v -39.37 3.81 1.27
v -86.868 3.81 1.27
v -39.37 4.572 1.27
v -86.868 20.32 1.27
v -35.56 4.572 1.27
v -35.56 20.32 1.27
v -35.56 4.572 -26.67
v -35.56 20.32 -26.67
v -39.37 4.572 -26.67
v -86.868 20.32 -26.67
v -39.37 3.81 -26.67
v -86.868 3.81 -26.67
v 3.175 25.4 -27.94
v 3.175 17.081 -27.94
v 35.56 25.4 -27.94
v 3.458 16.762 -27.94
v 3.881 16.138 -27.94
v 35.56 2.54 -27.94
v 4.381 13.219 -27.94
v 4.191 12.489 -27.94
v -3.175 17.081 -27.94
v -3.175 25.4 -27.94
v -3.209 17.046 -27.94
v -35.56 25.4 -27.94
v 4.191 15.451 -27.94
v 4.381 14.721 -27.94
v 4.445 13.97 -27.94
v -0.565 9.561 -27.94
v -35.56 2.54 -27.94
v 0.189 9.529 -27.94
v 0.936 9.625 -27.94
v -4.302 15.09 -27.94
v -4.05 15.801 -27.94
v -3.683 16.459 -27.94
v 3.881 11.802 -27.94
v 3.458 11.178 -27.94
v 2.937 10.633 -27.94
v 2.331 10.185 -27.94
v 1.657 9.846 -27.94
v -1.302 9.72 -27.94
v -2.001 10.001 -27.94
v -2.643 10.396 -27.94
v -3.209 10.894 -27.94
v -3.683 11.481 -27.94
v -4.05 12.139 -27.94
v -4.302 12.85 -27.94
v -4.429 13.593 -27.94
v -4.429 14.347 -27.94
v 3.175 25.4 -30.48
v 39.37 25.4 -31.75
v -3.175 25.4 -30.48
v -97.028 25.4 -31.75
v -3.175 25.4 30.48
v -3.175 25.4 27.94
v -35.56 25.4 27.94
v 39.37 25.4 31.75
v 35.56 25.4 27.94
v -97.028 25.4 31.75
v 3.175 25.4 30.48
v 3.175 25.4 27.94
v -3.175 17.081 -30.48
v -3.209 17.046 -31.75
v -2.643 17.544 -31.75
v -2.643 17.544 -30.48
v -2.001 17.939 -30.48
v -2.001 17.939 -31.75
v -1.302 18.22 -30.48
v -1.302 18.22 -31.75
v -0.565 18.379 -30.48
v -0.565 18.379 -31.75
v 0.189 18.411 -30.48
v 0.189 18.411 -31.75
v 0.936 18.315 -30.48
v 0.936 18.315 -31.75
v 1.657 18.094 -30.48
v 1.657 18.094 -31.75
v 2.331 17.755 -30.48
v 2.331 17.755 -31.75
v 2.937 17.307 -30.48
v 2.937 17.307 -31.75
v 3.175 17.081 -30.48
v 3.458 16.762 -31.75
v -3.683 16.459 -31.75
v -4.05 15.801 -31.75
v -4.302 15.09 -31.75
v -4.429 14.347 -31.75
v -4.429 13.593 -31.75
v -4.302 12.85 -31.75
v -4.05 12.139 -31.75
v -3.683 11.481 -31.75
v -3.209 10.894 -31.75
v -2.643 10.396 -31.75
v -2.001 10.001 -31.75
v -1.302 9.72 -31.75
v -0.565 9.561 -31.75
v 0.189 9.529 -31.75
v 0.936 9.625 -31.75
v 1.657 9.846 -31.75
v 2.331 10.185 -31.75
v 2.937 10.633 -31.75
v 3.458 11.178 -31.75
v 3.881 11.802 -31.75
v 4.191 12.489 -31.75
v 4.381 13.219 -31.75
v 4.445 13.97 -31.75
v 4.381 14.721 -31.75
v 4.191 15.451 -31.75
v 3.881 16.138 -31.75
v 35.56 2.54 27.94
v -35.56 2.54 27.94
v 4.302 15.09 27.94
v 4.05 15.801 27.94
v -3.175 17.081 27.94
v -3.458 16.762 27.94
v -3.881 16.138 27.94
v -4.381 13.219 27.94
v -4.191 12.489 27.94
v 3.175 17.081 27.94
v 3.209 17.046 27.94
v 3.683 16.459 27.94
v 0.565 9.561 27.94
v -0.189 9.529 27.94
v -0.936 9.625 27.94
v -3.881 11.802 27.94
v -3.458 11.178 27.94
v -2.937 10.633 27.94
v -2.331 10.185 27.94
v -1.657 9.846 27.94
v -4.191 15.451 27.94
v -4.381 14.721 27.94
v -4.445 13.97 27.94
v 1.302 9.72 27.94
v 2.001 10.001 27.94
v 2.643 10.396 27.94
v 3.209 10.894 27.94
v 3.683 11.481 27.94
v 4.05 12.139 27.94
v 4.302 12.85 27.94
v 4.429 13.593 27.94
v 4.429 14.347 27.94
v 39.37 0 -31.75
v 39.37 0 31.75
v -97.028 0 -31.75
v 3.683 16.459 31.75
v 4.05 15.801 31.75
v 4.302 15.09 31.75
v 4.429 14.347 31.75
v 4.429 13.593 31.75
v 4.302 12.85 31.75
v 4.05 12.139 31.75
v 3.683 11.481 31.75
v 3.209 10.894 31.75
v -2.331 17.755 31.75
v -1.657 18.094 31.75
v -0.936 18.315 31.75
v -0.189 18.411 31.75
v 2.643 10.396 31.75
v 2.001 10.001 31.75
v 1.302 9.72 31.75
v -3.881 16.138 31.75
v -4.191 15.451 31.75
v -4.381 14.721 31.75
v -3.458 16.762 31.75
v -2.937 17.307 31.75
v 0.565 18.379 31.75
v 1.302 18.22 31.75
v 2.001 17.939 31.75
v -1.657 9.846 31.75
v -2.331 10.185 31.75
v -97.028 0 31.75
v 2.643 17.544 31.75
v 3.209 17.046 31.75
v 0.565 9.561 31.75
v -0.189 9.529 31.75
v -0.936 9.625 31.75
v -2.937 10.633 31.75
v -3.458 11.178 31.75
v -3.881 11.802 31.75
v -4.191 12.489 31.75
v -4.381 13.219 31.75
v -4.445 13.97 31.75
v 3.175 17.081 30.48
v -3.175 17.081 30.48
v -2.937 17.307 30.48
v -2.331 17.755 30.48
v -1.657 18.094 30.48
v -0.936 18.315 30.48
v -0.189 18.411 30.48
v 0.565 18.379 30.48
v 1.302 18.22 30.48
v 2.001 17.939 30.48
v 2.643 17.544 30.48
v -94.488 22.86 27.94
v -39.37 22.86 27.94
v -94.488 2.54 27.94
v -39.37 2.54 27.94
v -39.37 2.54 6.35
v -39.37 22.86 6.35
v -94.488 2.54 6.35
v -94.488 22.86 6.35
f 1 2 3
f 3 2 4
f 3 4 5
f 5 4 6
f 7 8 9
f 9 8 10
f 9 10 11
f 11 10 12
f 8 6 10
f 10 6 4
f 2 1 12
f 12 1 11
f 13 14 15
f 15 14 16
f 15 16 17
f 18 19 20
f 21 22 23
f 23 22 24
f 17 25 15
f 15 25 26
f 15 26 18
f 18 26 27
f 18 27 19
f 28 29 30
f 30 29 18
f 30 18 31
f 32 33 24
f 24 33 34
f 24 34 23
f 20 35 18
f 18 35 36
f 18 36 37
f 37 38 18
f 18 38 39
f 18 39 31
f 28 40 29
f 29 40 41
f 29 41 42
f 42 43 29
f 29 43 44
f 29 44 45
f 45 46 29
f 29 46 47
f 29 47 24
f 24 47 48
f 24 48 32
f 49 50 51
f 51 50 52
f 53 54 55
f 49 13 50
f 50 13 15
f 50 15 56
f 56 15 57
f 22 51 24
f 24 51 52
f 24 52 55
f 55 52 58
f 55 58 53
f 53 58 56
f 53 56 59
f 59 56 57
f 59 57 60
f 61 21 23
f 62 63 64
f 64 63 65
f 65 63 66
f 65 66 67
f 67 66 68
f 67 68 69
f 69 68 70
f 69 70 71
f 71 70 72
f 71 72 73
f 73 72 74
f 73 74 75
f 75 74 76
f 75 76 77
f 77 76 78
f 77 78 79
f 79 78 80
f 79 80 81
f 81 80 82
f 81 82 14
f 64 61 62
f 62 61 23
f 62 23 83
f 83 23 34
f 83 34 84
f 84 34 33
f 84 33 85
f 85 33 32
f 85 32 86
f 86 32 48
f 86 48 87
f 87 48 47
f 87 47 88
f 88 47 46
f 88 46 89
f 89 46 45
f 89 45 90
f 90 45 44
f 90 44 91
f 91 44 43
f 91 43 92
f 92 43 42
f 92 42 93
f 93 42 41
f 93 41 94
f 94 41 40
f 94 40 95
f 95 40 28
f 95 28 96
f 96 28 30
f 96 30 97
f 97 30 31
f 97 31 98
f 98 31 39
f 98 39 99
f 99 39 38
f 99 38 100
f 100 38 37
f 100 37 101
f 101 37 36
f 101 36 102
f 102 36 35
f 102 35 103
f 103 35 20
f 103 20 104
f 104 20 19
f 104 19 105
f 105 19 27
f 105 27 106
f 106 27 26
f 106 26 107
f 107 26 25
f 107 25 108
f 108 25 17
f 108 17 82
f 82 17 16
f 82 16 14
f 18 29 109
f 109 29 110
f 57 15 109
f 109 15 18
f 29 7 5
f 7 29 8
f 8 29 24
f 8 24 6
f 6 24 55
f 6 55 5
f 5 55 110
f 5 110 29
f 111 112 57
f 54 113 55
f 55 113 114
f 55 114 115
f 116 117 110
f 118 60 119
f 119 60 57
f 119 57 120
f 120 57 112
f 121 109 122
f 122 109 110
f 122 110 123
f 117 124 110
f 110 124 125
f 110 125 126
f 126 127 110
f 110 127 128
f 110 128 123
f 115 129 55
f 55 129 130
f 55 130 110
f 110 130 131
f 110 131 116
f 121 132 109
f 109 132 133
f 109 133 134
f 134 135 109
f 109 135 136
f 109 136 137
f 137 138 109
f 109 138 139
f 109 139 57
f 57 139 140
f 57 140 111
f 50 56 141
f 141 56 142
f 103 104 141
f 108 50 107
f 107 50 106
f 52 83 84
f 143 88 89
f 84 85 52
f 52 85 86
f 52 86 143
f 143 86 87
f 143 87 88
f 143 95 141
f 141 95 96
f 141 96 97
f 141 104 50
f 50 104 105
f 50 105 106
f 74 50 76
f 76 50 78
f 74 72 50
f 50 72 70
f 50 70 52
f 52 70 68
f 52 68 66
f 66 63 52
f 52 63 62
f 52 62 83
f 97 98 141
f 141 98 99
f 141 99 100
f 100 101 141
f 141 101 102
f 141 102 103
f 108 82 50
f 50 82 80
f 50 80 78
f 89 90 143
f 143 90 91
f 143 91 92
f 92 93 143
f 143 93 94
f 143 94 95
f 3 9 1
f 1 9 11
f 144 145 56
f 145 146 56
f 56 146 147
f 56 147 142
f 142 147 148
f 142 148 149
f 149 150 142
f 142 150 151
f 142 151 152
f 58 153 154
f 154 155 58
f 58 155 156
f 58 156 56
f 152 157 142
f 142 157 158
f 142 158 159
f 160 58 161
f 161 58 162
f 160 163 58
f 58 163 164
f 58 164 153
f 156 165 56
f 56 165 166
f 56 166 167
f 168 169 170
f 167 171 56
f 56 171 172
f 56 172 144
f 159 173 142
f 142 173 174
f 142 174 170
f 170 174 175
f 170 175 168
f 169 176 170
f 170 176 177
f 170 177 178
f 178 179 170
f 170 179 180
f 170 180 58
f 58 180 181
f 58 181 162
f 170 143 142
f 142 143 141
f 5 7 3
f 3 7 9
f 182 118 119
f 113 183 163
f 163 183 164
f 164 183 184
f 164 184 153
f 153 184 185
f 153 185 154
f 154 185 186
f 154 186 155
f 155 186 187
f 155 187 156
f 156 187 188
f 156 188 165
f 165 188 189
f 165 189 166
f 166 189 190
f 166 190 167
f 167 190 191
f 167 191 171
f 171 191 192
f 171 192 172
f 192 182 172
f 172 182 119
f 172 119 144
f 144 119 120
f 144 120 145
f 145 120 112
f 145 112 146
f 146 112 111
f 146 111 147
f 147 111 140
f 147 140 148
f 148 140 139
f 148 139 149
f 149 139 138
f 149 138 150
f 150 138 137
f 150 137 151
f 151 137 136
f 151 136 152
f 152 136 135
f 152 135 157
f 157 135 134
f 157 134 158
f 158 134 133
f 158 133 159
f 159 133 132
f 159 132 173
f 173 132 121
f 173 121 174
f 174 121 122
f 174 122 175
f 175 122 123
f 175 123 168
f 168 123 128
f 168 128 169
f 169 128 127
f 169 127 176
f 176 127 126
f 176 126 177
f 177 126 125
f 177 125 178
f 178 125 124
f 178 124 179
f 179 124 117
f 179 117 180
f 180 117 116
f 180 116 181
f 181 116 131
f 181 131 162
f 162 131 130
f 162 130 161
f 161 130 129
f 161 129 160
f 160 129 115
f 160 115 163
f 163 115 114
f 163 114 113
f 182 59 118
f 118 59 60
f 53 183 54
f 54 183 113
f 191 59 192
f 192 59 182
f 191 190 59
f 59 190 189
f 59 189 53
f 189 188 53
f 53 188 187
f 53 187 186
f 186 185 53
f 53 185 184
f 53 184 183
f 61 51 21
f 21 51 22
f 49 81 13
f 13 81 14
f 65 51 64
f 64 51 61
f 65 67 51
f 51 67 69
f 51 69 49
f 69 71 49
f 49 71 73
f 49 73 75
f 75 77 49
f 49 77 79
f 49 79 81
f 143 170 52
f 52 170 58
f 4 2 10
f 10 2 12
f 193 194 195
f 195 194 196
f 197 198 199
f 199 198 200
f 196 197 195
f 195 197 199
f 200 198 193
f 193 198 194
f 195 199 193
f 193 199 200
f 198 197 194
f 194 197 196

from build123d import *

# Parameters (mm, degrees)
SKETCH1_W                = 71.12
SKETCH1_H                = 55.88
PCB_BASE_DEPTH           = 2.54
SKETCH1_4_W              = 78.74
SKETCH1_4_H              = 63.5
SKETCH1_4_W_2            = 71.12
SKETCH1_4_H_2            = 55.88
PCB_WALL_DEPTH           = 25.4
SKETCH2_W                = 27.94
SKETCH2_H                = 15.748
PCB_GAP_DEPTH            = 3.81
LID_HOLE_1_DEPTH         = 3.81
HOLE_SLIDE_1_DEPTH       = 2.54
LID_HOLE_2_START         = -3.81
LID_HOLE_2_DEPTH         = 3.81
HOLE_SLIDE_2_START       = -2.54
HOLE_SLIDE_2_DEPTH       = 2.54
SKETCH5_W                = 27.94
SKETCH5_H                = 5.08
BOSS_EXTRUDE3_DEPTH      = 48.768
BOSS_EXTRUDE4_DEPTH      = 8.89
BOSS_EXTRUDE4_DEPTH_BACK = 1.27
SKETCH7_W                = 38.1
SKETCH7_H                = 25.4
BOSS_EXTRUDE5_DEPTH      = 25.4
SKETCH9_W                = 57.658
SKETCH9_H                = 25.4
BOSS_EXTRUDE6_DEPTH      = 3.81


with BuildPart() as part:
    # Sketch1 → pcb-base (new body)
    with BuildSketch(Plane(origin=(0, 0, 0), x_dir=(1, 0, 0), z_dir=(0, 1, 0))):
        Rectangle(SKETCH1_W, SKETCH1_H)
    extrude(amount=PCB_BASE_DEPTH)

    # Sketch1<4> → pcb-wall (add)
    with BuildSketch(Plane(origin=(0, 0, 0), x_dir=(1, 0, 0), z_dir=(0, 1, 0))):
        Rectangle(SKETCH1_4_W, SKETCH1_4_H)
        Rectangle(SKETCH1_4_W_2, SKETCH1_4_H_2, mode=Mode.SUBTRACT)
    extrude(amount=PCB_WALL_DEPTH)

    # Sketch2 → pcb-gap (cut)
    with BuildSketch(Plane.ZY.offset(39.37)):
        with Locations((-12.7, 12.446)):
            Rectangle(SKETCH2_W, SKETCH2_H)
    extrude(amount=-PCB_GAP_DEPTH, mode=Mode.SUBTRACT)

    # Sketch4 → lid-hole-1 (cut)
    with BuildSketch(Plane(origin=(0, 0, 27.94), x_dir=(-1, 0, 0), z_dir=(0, 0, -1))):
        with BuildLine():
            ThreePointArc((3.175, 17.080851973), (0, 18.415), (-3.175, 17.080851973))
            Line((-3.175, 17.080851973), (-3.175, 13.97))
            Line((-3.175, 13.97), (3.175, 13.97))
            Line((3.175, 13.97), (3.175, 17.080851973))
        make_face()
        with BuildLine():
            Line((-3.175, 13.97), (-3.175, 17.080851973))
            ThreePointArc((-3.175, 17.080851973), (-1.680052083, 9.854729657), (4.445, 13.97))
            ThreePointArc((4.445, 13.97), (4.115270343, 15.650052083), (3.175, 17.080851973))
            Line((3.175, 17.080851973), (3.175, 13.97))
            Line((3.175, 13.97), (-3.175, 13.97))
        make_face()
    extrude(amount=-LID_HOLE_1_DEPTH, mode=Mode.SUBTRACT)

    # Sketch4<6> → hole-slide-1 (cut)
    with BuildSketch(Plane(origin=(0, 0, 27.94), x_dir=(-1, 0, 0), z_dir=(0, 0, -1))):
        with BuildLine():
            Line((3.175, 25.4), (-3.175, 25.4))
            Line((-3.175, 25.4), (-3.175, 17.080851973))
            ThreePointArc((-3.175, 17.080851973), (0, 18.415), (3.175, 17.080851973))
            Line((3.175, 17.080851973), (3.175, 25.4))
        make_face()
    extrude(amount=-HOLE_SLIDE_1_DEPTH, mode=Mode.SUBTRACT)

    # Sketch3 → lid-hole-2 (cut)
    with BuildSketch(Plane.XY.offset(-27.94).offset(LID_HOLE_2_START)):
        with BuildLine():
            Line((-3.175, 17.080851973), (-3.175, 13.97))
            Line((-3.175, 13.97), (3.175, 13.97))
            Line((3.175, 13.97), (3.175, 17.080851973))
            ThreePointArc((3.175, 17.080851973), (0, 18.415), (-3.175, 17.080851973))
        make_face()
        with BuildLine():
            Line((3.175, 13.97), (-3.175, 13.97))
            Line((-3.175, 13.97), (-3.175, 17.080851973))
            ThreePointArc((-3.175, 17.080851973), (-1.680052083, 9.854729657), (4.445, 13.97))
            ThreePointArc((4.445, 13.97), (4.115270343, 15.650052083), (3.175, 17.080851973))
            Line((3.175, 17.080851973), (3.175, 13.97))
        make_face()
    extrude(amount=LID_HOLE_2_DEPTH, mode=Mode.SUBTRACT)

    # Sketch3<5> → hole-slide-2 (cut)
    with BuildSketch(Plane.XY.offset(-27.94).offset(HOLE_SLIDE_2_START)):
        with BuildLine():
            Line((-3.175, 25.4), (-3.175, 17.080851973))
            ThreePointArc((-3.175, 17.080851973), (0, 18.415), (3.175, 17.080851973))
            Line((3.175, 17.080851973), (3.175, 25.4))
            Line((3.175, 25.4), (-3.175, 25.4))
        make_face()
    extrude(amount=HOLE_SLIDE_2_DEPTH, mode=Mode.SUBTRACT)

    # Sketch5 → Boss-Extrude3 (add)
    with BuildSketch(Plane.ZY.offset(39.37)):
        Polygon((-31.75, 25.4), (-31.75, 3.81), (-26.67, 3.81), (-26.67, 4.572), (-26.67, 20.32), (-26.67, 25.4), align=None)
        with Locations((-12.7, 22.86)):
            Rectangle(SKETCH5_W, SKETCH5_H)
        Polygon((1.27, 3.81), (6.35, 3.81), (6.35, 25.4), (1.27, 25.4), (1.27, 20.32), (1.27, 4.572), align=None)
        Polygon((-31.75, 3.81), (-31.75, 0), (6.35, 0), (6.35, 3.81), (1.27, 3.81), (-26.67, 3.81), align=None)
    extrude(amount=BOSS_EXTRUDE3_DEPTH)

    # Sketch7 → Boss-Extrude4 (add, two sides: drawn at the far end of the back side and taken through both)
    with BuildSketch(Plane.ZY.offset(88.138).offset(-BOSS_EXTRUDE4_DEPTH_BACK)):
        with Locations((-12.7, 12.7)):
            Rectangle(SKETCH7_W, SKETCH7_H)
    extrude(amount=BOSS_EXTRUDE4_DEPTH + BOSS_EXTRUDE4_DEPTH_BACK)

    # Sketch8 → Boss-Extrude5 (add)
    with BuildSketch(Plane.XY.offset(6.35)):
        Polygon((-97.028, 25.4), (-97.028, 0), (-39.37, 0), (-39.37, 2.54), (-94.488, 2.54), (-94.488, 22.86), (-39.37, 22.86), (-39.37, 25.4), align=None)
    extrude(amount=BOSS_EXTRUDE5_DEPTH)

    # Sketch9 → Boss-Extrude6 (add)
    with BuildSketch(Plane.XY.offset(31.75)):
        with Locations((-68.199, 12.7)):
            Rectangle(SKETCH9_W, SKETCH9_H)
    extrude(amount=-BOSS_EXTRUDE6_DEPTH)


solid = part.part
